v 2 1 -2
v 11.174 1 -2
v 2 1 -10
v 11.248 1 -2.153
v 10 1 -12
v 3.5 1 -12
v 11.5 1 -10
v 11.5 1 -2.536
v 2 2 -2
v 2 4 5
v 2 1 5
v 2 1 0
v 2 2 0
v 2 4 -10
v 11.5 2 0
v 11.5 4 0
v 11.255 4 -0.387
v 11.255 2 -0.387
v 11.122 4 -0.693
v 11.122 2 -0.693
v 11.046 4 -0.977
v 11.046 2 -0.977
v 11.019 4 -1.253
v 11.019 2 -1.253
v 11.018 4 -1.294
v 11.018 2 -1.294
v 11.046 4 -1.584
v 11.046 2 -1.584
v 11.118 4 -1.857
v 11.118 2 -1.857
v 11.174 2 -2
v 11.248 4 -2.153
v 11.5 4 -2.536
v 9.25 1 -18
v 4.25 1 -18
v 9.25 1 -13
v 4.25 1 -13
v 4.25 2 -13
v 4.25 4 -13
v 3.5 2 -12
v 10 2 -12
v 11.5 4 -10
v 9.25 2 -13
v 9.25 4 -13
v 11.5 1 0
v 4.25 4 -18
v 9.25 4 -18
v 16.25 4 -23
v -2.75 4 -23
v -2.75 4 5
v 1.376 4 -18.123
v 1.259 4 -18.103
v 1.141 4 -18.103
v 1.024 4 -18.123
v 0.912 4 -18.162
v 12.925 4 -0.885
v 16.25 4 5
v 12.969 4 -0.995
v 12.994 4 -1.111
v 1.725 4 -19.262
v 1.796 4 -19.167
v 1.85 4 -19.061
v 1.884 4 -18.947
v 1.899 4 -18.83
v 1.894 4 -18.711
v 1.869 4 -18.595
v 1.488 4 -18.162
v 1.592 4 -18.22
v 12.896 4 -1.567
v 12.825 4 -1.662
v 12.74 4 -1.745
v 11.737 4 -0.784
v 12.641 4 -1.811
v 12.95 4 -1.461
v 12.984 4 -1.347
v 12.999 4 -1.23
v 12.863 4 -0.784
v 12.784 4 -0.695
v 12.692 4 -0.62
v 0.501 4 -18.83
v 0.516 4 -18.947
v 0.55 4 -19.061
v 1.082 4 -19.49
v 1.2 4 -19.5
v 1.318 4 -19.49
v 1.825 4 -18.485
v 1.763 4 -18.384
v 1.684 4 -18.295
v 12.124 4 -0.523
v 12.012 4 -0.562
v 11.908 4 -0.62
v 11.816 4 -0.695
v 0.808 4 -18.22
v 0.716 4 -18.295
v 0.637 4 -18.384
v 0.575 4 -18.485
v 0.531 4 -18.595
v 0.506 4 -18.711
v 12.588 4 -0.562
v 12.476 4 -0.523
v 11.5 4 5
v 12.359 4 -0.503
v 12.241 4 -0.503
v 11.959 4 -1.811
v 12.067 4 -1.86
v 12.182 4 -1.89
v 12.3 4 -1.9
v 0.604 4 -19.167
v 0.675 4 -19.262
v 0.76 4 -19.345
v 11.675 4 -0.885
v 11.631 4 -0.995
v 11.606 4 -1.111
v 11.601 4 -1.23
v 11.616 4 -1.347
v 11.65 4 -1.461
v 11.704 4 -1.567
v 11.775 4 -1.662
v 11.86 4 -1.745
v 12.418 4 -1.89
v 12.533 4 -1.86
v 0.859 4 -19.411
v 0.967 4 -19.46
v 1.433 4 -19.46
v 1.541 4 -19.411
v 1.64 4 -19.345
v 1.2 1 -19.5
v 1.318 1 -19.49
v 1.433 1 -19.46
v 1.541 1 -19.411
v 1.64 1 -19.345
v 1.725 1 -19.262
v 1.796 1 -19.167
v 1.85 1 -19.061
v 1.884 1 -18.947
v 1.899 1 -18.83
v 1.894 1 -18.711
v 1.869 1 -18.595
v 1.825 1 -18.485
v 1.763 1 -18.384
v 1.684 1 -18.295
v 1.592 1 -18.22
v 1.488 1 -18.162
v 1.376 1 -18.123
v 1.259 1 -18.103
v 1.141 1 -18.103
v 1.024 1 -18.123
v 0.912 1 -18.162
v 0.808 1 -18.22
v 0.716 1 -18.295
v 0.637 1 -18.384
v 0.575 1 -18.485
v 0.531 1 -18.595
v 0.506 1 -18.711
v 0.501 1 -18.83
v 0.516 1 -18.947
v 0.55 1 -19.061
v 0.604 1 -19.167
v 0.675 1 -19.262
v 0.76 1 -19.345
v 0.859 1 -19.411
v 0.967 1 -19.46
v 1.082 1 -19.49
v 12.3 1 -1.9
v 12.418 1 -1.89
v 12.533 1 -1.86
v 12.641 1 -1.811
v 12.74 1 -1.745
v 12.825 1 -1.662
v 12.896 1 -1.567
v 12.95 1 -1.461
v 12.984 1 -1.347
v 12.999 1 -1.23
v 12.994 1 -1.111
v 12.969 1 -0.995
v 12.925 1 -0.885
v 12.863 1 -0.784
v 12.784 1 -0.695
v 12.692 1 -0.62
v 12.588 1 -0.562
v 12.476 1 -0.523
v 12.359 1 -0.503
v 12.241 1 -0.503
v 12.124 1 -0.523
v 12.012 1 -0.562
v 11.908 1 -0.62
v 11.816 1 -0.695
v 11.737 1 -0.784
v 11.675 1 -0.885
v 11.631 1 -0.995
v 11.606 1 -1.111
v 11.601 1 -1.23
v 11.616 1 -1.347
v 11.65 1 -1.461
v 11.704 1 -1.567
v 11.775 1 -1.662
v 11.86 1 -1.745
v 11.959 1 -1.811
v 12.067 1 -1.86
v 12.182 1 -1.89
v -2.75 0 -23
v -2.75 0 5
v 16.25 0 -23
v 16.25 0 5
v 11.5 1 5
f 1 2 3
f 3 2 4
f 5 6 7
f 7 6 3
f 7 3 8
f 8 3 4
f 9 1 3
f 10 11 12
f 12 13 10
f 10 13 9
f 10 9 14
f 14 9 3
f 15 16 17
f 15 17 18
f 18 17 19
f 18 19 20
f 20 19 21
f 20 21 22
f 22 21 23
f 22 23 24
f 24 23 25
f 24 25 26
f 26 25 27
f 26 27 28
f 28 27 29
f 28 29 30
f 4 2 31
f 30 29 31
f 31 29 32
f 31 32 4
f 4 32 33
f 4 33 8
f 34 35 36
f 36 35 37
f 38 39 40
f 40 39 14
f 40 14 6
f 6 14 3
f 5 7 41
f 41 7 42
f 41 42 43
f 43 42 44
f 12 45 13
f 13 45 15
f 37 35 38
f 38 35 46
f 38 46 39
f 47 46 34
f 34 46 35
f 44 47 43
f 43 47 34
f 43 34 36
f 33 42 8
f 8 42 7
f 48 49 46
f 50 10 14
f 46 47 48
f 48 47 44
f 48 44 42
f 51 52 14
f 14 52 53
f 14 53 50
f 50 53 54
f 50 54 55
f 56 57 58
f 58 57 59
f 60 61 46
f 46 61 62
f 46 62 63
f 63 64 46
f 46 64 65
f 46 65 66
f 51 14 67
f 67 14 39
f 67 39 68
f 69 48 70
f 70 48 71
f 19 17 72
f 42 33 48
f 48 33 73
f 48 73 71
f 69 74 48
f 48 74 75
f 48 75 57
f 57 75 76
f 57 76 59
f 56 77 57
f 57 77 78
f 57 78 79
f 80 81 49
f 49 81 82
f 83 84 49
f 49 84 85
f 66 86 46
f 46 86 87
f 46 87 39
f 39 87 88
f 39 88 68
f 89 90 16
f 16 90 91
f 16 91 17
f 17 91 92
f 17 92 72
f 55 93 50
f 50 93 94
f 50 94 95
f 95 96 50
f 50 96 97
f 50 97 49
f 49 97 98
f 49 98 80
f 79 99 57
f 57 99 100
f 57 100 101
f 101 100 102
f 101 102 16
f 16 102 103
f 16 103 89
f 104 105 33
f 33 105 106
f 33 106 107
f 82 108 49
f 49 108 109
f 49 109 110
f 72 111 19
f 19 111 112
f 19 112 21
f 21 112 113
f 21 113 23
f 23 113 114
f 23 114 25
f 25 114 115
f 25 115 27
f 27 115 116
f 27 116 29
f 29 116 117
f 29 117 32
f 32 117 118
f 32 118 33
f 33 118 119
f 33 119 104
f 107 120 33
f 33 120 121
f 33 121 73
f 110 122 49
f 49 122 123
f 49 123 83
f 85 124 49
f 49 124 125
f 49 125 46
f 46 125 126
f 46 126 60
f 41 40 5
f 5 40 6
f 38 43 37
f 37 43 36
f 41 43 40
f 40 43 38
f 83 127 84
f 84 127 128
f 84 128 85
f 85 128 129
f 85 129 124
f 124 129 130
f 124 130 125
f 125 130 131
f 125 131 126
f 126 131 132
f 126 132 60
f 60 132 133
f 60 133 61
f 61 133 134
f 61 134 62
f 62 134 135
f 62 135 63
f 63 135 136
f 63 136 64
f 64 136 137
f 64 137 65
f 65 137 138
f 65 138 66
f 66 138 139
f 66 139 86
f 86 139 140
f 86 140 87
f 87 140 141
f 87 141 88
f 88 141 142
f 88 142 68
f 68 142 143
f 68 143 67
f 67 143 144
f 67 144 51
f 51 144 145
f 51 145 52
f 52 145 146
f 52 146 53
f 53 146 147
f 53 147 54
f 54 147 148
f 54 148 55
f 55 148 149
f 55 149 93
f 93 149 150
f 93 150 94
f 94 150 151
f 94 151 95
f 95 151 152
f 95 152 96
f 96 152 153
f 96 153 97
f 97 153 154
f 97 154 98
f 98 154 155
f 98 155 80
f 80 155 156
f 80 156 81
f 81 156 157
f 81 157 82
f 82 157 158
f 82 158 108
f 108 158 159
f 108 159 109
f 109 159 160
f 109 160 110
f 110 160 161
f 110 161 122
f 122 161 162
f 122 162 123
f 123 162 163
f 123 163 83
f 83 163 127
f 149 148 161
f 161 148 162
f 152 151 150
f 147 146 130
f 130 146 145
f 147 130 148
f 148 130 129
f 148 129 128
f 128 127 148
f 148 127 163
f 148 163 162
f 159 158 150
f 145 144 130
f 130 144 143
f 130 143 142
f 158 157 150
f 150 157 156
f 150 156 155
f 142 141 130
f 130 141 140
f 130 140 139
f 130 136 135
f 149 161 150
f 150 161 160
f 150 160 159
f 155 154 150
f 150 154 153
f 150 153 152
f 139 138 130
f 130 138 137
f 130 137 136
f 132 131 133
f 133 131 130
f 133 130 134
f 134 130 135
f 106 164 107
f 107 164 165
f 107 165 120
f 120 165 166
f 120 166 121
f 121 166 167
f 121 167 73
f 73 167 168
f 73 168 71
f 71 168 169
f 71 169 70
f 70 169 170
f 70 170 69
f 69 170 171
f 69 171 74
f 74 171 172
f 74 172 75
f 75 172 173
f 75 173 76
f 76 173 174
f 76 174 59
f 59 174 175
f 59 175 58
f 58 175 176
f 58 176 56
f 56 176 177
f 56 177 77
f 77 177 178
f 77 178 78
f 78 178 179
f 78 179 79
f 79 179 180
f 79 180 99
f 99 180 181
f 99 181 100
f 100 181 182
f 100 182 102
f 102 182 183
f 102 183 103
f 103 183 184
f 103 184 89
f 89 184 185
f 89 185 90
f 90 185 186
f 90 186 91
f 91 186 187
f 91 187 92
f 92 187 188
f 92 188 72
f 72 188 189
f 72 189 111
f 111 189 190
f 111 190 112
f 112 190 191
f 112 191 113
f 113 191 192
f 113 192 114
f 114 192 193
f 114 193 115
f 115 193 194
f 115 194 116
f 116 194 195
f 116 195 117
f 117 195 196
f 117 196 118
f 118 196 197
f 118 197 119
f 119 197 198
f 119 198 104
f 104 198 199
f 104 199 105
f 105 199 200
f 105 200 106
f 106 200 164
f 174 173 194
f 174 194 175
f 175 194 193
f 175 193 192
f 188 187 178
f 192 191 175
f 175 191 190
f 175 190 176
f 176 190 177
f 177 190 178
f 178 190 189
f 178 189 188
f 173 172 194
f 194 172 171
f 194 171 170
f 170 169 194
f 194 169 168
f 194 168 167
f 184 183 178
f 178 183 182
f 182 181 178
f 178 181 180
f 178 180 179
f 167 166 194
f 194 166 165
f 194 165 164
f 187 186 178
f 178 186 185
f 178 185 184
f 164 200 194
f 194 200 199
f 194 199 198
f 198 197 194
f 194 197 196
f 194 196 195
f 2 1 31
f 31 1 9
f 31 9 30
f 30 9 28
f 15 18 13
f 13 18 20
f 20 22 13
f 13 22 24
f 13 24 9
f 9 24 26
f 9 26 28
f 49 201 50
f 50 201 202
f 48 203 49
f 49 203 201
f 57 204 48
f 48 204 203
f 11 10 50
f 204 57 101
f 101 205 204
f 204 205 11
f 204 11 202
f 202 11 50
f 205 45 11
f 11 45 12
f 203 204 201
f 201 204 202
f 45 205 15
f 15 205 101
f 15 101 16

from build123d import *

# Parameters (mm, degrees)
SKETCH1_W           = 13.5
SKETCH1_H           = 20
BOSS_EXTRUDE1_DEPTH = 1
BOSS_EXTRUDE2_DEPTH = 3
BOSS_EXTRUDE3_DEPTH = 1
CUT_EXTRUDE1_START  = -1
SKETCH4_R           = 0.7
CUT_EXTRUDE1_DEPTH  = 11.5
SKETCH5_W           = 9.5
SKETCH5_H           = 2
BOSS_EXTRUDE4_DEPTH = 1
SKETCH6_W           = 19
SKETCH6_H           = 28
SKETCH6_W_2         = 13.5
SKETCH6_H_2         = 20
BOSS_EXTRUDE5_DEPTH = 1
BOSS_EXTRUDE6_DEPTH = 3


with BuildPart() as part:
    # Sketch1 → Boss-Extrude1 (new body)
    with BuildSketch(Plane(origin=(0, 0, 0), x_dir=(1, 0, 0), z_dir=(0, 1, 0))):
        with Locations((6.75, 10)):
            Rectangle(SKETCH1_W, SKETCH1_H)
    extrude(amount=BOSS_EXTRUDE1_DEPTH)

    # Sketch2 → Boss-Extrude2 (add)
    with BuildSketch(Plane(origin=(0, 1, 0), x_dir=(1, 0, 0), z_dir=(0, 1, 0))):
        with BuildLine():
            Line((2, 10), (2, 2))
            Line((2, 2), (2, 0))
            Line((2, 0), (0, 0))
            Line((0, 0), (0, 20))
            Line((0, 20), (13.5, 20))
            Line((13.5, 20), (13.5, 0))
            Line((13.5, 0), (11.5, 0))
            add(Edge.make_bspline(
                [(11.5, 2.535585729), (10.536627545, 1.300187459), (11.5, 0)],
                knots=[0, 0, 0, 1, 1, 1], degree=2))
            Line((11.5, 2.535585729), (11.5, 10))
            Line((11.5, 10), (9.25, 13))
            Line((9.25, 13), (9.25, 18))
            Line((9.25, 18), (4.25, 18))
            Line((4.25, 18), (4.25, 13))
            Line((4.25, 13), (2, 10))
        make_face()
    extrude(amount=BOSS_EXTRUDE2_DEPTH)

    # Sketch3 → Boss-Extrude3 (add)
    with BuildSketch(Plane(origin=(0, 1, 0), x_dir=(1, 0, 0), z_dir=(0, 1, 0))):
        Polygon((4.25, 13), (9.25, 13), (10, 12), (3.5, 12), align=None)
    extrude(amount=BOSS_EXTRUDE3_DEPTH)

    # Sketch4 → Cut-Extrude1 (cut)
    with BuildSketch(Plane.XZ.offset(CUT_EXTRUDE1_START)):
        with Locations(Location((1.2, -18.8, 0), (0, 0, 270))):
            Circle(SKETCH4_R)
        with Locations(Location((12.3, -1.2, 0), (0, 0, 270))):
            Circle(SKETCH4_R)
    extrude(amount=-CUT_EXTRUDE1_DEPTH, mode=Mode.SUBTRACT)

    # Sketch5 → Boss-Extrude4 (add)
    with BuildSketch(Plane(origin=(0, 1, 0), x_dir=(1, 0, 0), z_dir=(0, 1, 0))):
        with Locations((6.75, 1)):
            Rectangle(SKETCH5_W, SKETCH5_H)
    extrude(amount=BOSS_EXTRUDE4_DEPTH)

    # Sketch6 → Boss-Extrude5 (add)
    with BuildSketch(Plane(origin=(0, 1, 0), x_dir=(1, 0, 0), z_dir=(0, 1, 0))):
        with Locations((6.75, 9)):
            Rectangle(SKETCH6_W, SKETCH6_H)
        with Locations((6.75, 10)):
            Rectangle(SKETCH6_W_2, SKETCH6_H_2, mode=Mode.SUBTRACT)
    extrude(amount=-BOSS_EXTRUDE5_DEPTH)

    # Sketch7 → Boss-Extrude6 (add)
    with BuildSketch(Plane(origin=(0, 4, 0), x_dir=(1, 0, 0), z_dir=(0, 1, 0))):
        Polygon((2, 0), (2, -5), (-2.75, -5), (-2.75, 23), (16.25, 23), (16.25, -5), (11.5, -5), (11.5, 0), (13.5, 0), (13.5, 20), (0, 20), (0, 0), align=None)
    extrude(amount=-BOSS_EXTRUDE6_DEPTH)


solid = part.part
